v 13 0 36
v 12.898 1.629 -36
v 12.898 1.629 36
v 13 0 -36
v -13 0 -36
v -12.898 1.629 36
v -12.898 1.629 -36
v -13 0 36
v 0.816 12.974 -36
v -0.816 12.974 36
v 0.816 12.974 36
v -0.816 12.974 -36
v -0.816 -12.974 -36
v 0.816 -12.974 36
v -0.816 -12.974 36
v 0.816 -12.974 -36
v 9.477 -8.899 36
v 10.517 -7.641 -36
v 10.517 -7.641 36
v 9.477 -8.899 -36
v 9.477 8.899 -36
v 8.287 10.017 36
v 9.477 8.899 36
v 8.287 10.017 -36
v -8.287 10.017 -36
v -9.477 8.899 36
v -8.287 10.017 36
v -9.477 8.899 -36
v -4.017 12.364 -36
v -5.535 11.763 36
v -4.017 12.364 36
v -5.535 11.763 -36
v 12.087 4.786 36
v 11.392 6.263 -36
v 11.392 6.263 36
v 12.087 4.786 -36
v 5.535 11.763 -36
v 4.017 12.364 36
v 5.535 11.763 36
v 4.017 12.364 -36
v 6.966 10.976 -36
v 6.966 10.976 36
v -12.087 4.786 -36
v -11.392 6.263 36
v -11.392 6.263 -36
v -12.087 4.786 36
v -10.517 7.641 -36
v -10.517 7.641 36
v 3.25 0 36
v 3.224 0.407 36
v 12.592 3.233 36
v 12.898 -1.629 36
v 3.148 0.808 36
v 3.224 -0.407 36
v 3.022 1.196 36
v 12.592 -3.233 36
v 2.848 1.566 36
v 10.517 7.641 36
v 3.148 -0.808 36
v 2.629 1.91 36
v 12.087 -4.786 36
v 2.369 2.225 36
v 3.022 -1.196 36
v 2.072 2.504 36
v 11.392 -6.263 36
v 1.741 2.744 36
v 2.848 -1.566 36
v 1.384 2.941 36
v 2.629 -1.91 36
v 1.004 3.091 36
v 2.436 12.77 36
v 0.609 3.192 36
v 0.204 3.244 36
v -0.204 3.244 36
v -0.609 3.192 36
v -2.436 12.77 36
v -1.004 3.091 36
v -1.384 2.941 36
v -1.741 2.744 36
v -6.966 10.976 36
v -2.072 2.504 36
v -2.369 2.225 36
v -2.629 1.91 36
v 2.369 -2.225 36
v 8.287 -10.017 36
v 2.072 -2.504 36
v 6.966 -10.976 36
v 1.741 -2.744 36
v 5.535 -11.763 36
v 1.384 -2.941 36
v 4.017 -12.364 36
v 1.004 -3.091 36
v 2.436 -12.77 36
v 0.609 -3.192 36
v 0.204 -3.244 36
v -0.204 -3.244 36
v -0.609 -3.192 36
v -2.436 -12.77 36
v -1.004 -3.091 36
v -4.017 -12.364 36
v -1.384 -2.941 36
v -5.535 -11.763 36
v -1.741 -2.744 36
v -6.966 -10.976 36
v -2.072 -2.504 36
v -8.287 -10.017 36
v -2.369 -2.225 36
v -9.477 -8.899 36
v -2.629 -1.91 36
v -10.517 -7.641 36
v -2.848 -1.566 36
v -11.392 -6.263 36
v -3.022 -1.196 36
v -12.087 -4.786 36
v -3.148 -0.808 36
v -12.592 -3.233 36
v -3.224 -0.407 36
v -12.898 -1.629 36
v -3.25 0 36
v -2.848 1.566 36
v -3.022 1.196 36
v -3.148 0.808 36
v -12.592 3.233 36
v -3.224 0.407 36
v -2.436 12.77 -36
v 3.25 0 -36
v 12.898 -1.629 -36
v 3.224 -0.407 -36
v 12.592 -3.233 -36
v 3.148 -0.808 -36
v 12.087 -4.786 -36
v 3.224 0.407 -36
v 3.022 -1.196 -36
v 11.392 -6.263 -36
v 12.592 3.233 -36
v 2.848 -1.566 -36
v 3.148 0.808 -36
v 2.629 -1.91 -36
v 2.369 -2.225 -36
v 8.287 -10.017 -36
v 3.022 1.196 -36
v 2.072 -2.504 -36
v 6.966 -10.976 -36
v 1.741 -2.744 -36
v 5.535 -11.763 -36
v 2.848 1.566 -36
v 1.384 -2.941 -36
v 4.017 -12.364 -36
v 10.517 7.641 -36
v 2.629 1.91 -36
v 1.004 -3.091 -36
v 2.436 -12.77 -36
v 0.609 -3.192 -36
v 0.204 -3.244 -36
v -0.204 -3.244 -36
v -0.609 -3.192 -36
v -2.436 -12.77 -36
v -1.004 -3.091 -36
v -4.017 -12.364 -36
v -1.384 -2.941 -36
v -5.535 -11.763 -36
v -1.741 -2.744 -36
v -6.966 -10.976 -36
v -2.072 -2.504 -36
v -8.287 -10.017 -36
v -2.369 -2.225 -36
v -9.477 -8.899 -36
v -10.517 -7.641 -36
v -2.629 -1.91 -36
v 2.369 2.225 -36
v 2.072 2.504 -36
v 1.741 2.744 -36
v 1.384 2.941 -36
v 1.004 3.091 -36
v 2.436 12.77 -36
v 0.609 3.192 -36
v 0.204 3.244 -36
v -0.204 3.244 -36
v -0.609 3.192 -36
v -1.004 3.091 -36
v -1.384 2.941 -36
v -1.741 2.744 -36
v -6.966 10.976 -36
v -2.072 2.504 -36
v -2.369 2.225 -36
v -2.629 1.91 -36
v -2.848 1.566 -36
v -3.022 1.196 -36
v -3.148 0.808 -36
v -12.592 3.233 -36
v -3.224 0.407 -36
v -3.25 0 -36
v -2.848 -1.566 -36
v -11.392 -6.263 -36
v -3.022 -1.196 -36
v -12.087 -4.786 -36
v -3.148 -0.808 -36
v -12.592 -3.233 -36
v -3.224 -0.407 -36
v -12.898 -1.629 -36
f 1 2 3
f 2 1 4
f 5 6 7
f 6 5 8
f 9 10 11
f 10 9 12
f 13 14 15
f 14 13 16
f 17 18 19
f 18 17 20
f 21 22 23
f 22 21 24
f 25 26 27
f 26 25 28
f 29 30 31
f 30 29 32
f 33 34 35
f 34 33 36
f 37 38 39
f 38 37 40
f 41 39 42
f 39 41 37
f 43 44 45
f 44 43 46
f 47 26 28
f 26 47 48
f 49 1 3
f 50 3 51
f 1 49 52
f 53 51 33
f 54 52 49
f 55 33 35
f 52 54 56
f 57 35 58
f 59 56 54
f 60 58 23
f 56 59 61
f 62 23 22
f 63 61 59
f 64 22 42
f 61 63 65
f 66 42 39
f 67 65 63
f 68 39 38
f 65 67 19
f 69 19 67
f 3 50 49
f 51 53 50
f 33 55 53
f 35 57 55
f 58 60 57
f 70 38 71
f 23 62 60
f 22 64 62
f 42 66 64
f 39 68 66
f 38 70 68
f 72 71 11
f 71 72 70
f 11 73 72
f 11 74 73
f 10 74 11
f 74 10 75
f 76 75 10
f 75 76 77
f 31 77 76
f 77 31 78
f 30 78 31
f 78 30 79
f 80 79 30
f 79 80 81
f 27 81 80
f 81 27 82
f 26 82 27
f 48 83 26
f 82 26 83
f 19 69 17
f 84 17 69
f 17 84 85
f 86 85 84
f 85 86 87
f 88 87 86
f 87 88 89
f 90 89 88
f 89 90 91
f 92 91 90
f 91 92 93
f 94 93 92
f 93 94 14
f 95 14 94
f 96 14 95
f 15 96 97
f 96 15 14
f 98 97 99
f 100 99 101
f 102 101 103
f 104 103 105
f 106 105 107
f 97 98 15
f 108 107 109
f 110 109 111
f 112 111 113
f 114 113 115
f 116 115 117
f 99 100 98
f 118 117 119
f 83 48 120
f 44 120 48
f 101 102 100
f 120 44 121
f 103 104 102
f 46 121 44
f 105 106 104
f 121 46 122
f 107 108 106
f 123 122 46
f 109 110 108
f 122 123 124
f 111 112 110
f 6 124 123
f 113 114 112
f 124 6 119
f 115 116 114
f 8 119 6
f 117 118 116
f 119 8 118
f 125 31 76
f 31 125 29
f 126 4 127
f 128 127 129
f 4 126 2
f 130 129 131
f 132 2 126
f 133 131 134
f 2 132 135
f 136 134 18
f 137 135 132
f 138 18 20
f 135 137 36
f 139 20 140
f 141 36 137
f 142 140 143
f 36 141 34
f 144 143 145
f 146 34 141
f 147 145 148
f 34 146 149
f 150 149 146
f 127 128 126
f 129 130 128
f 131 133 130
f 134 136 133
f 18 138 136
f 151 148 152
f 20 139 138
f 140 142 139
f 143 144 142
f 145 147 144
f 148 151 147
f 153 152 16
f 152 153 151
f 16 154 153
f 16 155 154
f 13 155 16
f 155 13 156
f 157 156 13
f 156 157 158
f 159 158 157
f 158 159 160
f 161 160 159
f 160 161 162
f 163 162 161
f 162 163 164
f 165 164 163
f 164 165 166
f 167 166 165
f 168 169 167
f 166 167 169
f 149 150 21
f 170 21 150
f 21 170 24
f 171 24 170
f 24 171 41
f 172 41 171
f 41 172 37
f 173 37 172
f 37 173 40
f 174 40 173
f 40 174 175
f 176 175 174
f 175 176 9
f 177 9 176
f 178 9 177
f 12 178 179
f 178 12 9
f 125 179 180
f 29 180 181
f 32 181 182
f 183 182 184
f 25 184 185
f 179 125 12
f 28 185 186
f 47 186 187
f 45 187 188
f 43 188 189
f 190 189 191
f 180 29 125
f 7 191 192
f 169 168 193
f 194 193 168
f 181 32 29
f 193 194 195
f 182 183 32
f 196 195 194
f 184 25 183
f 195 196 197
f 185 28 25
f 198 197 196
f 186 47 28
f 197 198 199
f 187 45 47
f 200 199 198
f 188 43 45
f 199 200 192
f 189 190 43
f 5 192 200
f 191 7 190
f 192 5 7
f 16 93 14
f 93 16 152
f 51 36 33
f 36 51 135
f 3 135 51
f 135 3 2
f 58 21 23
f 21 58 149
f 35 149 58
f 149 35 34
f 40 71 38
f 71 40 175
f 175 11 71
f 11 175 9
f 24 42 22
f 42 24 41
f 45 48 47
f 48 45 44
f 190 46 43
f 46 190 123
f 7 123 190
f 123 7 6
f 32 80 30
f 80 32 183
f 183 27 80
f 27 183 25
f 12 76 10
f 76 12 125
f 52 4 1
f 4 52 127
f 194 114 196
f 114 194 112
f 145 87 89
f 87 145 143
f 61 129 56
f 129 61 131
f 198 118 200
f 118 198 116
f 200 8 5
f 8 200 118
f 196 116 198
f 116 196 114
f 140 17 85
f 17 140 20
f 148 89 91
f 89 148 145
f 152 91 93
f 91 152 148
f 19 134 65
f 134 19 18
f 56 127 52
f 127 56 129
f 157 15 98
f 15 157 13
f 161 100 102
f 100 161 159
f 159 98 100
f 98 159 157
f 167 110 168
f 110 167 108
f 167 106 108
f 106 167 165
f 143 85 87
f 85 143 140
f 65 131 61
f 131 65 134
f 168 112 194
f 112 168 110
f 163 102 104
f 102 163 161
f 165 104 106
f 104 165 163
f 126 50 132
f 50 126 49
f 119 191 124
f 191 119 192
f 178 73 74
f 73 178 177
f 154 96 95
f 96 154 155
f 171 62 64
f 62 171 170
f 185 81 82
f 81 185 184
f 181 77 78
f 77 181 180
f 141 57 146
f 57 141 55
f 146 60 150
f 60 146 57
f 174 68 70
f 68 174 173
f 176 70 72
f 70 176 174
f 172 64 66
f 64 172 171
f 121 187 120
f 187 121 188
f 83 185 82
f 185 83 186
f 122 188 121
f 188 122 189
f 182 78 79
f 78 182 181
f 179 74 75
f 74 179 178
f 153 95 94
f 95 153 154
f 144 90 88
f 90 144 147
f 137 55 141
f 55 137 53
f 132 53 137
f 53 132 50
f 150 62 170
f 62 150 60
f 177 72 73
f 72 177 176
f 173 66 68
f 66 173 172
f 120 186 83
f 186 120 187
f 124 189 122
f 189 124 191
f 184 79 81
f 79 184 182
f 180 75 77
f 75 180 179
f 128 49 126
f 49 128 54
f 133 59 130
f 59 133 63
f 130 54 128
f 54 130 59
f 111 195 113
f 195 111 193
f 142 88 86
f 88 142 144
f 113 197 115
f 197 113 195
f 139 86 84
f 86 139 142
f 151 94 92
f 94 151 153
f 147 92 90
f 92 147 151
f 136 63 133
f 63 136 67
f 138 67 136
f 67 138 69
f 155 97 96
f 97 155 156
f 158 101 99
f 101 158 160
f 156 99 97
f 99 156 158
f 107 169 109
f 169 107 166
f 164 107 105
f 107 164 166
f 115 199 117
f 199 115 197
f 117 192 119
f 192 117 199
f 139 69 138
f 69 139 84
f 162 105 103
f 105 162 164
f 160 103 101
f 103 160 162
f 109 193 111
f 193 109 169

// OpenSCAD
$fn = 50;


difference() {
	union() {
		translate(v = [0, 0, -36.0000000000]) {
			cylinder(h = 72, r = 13.0000000000);
		}
	}
	union() {
		translate(v = [0, 0, -100.0000000000]) {
			cylinder(h = 200, r = 3.2500000000);
		}
	}
}
